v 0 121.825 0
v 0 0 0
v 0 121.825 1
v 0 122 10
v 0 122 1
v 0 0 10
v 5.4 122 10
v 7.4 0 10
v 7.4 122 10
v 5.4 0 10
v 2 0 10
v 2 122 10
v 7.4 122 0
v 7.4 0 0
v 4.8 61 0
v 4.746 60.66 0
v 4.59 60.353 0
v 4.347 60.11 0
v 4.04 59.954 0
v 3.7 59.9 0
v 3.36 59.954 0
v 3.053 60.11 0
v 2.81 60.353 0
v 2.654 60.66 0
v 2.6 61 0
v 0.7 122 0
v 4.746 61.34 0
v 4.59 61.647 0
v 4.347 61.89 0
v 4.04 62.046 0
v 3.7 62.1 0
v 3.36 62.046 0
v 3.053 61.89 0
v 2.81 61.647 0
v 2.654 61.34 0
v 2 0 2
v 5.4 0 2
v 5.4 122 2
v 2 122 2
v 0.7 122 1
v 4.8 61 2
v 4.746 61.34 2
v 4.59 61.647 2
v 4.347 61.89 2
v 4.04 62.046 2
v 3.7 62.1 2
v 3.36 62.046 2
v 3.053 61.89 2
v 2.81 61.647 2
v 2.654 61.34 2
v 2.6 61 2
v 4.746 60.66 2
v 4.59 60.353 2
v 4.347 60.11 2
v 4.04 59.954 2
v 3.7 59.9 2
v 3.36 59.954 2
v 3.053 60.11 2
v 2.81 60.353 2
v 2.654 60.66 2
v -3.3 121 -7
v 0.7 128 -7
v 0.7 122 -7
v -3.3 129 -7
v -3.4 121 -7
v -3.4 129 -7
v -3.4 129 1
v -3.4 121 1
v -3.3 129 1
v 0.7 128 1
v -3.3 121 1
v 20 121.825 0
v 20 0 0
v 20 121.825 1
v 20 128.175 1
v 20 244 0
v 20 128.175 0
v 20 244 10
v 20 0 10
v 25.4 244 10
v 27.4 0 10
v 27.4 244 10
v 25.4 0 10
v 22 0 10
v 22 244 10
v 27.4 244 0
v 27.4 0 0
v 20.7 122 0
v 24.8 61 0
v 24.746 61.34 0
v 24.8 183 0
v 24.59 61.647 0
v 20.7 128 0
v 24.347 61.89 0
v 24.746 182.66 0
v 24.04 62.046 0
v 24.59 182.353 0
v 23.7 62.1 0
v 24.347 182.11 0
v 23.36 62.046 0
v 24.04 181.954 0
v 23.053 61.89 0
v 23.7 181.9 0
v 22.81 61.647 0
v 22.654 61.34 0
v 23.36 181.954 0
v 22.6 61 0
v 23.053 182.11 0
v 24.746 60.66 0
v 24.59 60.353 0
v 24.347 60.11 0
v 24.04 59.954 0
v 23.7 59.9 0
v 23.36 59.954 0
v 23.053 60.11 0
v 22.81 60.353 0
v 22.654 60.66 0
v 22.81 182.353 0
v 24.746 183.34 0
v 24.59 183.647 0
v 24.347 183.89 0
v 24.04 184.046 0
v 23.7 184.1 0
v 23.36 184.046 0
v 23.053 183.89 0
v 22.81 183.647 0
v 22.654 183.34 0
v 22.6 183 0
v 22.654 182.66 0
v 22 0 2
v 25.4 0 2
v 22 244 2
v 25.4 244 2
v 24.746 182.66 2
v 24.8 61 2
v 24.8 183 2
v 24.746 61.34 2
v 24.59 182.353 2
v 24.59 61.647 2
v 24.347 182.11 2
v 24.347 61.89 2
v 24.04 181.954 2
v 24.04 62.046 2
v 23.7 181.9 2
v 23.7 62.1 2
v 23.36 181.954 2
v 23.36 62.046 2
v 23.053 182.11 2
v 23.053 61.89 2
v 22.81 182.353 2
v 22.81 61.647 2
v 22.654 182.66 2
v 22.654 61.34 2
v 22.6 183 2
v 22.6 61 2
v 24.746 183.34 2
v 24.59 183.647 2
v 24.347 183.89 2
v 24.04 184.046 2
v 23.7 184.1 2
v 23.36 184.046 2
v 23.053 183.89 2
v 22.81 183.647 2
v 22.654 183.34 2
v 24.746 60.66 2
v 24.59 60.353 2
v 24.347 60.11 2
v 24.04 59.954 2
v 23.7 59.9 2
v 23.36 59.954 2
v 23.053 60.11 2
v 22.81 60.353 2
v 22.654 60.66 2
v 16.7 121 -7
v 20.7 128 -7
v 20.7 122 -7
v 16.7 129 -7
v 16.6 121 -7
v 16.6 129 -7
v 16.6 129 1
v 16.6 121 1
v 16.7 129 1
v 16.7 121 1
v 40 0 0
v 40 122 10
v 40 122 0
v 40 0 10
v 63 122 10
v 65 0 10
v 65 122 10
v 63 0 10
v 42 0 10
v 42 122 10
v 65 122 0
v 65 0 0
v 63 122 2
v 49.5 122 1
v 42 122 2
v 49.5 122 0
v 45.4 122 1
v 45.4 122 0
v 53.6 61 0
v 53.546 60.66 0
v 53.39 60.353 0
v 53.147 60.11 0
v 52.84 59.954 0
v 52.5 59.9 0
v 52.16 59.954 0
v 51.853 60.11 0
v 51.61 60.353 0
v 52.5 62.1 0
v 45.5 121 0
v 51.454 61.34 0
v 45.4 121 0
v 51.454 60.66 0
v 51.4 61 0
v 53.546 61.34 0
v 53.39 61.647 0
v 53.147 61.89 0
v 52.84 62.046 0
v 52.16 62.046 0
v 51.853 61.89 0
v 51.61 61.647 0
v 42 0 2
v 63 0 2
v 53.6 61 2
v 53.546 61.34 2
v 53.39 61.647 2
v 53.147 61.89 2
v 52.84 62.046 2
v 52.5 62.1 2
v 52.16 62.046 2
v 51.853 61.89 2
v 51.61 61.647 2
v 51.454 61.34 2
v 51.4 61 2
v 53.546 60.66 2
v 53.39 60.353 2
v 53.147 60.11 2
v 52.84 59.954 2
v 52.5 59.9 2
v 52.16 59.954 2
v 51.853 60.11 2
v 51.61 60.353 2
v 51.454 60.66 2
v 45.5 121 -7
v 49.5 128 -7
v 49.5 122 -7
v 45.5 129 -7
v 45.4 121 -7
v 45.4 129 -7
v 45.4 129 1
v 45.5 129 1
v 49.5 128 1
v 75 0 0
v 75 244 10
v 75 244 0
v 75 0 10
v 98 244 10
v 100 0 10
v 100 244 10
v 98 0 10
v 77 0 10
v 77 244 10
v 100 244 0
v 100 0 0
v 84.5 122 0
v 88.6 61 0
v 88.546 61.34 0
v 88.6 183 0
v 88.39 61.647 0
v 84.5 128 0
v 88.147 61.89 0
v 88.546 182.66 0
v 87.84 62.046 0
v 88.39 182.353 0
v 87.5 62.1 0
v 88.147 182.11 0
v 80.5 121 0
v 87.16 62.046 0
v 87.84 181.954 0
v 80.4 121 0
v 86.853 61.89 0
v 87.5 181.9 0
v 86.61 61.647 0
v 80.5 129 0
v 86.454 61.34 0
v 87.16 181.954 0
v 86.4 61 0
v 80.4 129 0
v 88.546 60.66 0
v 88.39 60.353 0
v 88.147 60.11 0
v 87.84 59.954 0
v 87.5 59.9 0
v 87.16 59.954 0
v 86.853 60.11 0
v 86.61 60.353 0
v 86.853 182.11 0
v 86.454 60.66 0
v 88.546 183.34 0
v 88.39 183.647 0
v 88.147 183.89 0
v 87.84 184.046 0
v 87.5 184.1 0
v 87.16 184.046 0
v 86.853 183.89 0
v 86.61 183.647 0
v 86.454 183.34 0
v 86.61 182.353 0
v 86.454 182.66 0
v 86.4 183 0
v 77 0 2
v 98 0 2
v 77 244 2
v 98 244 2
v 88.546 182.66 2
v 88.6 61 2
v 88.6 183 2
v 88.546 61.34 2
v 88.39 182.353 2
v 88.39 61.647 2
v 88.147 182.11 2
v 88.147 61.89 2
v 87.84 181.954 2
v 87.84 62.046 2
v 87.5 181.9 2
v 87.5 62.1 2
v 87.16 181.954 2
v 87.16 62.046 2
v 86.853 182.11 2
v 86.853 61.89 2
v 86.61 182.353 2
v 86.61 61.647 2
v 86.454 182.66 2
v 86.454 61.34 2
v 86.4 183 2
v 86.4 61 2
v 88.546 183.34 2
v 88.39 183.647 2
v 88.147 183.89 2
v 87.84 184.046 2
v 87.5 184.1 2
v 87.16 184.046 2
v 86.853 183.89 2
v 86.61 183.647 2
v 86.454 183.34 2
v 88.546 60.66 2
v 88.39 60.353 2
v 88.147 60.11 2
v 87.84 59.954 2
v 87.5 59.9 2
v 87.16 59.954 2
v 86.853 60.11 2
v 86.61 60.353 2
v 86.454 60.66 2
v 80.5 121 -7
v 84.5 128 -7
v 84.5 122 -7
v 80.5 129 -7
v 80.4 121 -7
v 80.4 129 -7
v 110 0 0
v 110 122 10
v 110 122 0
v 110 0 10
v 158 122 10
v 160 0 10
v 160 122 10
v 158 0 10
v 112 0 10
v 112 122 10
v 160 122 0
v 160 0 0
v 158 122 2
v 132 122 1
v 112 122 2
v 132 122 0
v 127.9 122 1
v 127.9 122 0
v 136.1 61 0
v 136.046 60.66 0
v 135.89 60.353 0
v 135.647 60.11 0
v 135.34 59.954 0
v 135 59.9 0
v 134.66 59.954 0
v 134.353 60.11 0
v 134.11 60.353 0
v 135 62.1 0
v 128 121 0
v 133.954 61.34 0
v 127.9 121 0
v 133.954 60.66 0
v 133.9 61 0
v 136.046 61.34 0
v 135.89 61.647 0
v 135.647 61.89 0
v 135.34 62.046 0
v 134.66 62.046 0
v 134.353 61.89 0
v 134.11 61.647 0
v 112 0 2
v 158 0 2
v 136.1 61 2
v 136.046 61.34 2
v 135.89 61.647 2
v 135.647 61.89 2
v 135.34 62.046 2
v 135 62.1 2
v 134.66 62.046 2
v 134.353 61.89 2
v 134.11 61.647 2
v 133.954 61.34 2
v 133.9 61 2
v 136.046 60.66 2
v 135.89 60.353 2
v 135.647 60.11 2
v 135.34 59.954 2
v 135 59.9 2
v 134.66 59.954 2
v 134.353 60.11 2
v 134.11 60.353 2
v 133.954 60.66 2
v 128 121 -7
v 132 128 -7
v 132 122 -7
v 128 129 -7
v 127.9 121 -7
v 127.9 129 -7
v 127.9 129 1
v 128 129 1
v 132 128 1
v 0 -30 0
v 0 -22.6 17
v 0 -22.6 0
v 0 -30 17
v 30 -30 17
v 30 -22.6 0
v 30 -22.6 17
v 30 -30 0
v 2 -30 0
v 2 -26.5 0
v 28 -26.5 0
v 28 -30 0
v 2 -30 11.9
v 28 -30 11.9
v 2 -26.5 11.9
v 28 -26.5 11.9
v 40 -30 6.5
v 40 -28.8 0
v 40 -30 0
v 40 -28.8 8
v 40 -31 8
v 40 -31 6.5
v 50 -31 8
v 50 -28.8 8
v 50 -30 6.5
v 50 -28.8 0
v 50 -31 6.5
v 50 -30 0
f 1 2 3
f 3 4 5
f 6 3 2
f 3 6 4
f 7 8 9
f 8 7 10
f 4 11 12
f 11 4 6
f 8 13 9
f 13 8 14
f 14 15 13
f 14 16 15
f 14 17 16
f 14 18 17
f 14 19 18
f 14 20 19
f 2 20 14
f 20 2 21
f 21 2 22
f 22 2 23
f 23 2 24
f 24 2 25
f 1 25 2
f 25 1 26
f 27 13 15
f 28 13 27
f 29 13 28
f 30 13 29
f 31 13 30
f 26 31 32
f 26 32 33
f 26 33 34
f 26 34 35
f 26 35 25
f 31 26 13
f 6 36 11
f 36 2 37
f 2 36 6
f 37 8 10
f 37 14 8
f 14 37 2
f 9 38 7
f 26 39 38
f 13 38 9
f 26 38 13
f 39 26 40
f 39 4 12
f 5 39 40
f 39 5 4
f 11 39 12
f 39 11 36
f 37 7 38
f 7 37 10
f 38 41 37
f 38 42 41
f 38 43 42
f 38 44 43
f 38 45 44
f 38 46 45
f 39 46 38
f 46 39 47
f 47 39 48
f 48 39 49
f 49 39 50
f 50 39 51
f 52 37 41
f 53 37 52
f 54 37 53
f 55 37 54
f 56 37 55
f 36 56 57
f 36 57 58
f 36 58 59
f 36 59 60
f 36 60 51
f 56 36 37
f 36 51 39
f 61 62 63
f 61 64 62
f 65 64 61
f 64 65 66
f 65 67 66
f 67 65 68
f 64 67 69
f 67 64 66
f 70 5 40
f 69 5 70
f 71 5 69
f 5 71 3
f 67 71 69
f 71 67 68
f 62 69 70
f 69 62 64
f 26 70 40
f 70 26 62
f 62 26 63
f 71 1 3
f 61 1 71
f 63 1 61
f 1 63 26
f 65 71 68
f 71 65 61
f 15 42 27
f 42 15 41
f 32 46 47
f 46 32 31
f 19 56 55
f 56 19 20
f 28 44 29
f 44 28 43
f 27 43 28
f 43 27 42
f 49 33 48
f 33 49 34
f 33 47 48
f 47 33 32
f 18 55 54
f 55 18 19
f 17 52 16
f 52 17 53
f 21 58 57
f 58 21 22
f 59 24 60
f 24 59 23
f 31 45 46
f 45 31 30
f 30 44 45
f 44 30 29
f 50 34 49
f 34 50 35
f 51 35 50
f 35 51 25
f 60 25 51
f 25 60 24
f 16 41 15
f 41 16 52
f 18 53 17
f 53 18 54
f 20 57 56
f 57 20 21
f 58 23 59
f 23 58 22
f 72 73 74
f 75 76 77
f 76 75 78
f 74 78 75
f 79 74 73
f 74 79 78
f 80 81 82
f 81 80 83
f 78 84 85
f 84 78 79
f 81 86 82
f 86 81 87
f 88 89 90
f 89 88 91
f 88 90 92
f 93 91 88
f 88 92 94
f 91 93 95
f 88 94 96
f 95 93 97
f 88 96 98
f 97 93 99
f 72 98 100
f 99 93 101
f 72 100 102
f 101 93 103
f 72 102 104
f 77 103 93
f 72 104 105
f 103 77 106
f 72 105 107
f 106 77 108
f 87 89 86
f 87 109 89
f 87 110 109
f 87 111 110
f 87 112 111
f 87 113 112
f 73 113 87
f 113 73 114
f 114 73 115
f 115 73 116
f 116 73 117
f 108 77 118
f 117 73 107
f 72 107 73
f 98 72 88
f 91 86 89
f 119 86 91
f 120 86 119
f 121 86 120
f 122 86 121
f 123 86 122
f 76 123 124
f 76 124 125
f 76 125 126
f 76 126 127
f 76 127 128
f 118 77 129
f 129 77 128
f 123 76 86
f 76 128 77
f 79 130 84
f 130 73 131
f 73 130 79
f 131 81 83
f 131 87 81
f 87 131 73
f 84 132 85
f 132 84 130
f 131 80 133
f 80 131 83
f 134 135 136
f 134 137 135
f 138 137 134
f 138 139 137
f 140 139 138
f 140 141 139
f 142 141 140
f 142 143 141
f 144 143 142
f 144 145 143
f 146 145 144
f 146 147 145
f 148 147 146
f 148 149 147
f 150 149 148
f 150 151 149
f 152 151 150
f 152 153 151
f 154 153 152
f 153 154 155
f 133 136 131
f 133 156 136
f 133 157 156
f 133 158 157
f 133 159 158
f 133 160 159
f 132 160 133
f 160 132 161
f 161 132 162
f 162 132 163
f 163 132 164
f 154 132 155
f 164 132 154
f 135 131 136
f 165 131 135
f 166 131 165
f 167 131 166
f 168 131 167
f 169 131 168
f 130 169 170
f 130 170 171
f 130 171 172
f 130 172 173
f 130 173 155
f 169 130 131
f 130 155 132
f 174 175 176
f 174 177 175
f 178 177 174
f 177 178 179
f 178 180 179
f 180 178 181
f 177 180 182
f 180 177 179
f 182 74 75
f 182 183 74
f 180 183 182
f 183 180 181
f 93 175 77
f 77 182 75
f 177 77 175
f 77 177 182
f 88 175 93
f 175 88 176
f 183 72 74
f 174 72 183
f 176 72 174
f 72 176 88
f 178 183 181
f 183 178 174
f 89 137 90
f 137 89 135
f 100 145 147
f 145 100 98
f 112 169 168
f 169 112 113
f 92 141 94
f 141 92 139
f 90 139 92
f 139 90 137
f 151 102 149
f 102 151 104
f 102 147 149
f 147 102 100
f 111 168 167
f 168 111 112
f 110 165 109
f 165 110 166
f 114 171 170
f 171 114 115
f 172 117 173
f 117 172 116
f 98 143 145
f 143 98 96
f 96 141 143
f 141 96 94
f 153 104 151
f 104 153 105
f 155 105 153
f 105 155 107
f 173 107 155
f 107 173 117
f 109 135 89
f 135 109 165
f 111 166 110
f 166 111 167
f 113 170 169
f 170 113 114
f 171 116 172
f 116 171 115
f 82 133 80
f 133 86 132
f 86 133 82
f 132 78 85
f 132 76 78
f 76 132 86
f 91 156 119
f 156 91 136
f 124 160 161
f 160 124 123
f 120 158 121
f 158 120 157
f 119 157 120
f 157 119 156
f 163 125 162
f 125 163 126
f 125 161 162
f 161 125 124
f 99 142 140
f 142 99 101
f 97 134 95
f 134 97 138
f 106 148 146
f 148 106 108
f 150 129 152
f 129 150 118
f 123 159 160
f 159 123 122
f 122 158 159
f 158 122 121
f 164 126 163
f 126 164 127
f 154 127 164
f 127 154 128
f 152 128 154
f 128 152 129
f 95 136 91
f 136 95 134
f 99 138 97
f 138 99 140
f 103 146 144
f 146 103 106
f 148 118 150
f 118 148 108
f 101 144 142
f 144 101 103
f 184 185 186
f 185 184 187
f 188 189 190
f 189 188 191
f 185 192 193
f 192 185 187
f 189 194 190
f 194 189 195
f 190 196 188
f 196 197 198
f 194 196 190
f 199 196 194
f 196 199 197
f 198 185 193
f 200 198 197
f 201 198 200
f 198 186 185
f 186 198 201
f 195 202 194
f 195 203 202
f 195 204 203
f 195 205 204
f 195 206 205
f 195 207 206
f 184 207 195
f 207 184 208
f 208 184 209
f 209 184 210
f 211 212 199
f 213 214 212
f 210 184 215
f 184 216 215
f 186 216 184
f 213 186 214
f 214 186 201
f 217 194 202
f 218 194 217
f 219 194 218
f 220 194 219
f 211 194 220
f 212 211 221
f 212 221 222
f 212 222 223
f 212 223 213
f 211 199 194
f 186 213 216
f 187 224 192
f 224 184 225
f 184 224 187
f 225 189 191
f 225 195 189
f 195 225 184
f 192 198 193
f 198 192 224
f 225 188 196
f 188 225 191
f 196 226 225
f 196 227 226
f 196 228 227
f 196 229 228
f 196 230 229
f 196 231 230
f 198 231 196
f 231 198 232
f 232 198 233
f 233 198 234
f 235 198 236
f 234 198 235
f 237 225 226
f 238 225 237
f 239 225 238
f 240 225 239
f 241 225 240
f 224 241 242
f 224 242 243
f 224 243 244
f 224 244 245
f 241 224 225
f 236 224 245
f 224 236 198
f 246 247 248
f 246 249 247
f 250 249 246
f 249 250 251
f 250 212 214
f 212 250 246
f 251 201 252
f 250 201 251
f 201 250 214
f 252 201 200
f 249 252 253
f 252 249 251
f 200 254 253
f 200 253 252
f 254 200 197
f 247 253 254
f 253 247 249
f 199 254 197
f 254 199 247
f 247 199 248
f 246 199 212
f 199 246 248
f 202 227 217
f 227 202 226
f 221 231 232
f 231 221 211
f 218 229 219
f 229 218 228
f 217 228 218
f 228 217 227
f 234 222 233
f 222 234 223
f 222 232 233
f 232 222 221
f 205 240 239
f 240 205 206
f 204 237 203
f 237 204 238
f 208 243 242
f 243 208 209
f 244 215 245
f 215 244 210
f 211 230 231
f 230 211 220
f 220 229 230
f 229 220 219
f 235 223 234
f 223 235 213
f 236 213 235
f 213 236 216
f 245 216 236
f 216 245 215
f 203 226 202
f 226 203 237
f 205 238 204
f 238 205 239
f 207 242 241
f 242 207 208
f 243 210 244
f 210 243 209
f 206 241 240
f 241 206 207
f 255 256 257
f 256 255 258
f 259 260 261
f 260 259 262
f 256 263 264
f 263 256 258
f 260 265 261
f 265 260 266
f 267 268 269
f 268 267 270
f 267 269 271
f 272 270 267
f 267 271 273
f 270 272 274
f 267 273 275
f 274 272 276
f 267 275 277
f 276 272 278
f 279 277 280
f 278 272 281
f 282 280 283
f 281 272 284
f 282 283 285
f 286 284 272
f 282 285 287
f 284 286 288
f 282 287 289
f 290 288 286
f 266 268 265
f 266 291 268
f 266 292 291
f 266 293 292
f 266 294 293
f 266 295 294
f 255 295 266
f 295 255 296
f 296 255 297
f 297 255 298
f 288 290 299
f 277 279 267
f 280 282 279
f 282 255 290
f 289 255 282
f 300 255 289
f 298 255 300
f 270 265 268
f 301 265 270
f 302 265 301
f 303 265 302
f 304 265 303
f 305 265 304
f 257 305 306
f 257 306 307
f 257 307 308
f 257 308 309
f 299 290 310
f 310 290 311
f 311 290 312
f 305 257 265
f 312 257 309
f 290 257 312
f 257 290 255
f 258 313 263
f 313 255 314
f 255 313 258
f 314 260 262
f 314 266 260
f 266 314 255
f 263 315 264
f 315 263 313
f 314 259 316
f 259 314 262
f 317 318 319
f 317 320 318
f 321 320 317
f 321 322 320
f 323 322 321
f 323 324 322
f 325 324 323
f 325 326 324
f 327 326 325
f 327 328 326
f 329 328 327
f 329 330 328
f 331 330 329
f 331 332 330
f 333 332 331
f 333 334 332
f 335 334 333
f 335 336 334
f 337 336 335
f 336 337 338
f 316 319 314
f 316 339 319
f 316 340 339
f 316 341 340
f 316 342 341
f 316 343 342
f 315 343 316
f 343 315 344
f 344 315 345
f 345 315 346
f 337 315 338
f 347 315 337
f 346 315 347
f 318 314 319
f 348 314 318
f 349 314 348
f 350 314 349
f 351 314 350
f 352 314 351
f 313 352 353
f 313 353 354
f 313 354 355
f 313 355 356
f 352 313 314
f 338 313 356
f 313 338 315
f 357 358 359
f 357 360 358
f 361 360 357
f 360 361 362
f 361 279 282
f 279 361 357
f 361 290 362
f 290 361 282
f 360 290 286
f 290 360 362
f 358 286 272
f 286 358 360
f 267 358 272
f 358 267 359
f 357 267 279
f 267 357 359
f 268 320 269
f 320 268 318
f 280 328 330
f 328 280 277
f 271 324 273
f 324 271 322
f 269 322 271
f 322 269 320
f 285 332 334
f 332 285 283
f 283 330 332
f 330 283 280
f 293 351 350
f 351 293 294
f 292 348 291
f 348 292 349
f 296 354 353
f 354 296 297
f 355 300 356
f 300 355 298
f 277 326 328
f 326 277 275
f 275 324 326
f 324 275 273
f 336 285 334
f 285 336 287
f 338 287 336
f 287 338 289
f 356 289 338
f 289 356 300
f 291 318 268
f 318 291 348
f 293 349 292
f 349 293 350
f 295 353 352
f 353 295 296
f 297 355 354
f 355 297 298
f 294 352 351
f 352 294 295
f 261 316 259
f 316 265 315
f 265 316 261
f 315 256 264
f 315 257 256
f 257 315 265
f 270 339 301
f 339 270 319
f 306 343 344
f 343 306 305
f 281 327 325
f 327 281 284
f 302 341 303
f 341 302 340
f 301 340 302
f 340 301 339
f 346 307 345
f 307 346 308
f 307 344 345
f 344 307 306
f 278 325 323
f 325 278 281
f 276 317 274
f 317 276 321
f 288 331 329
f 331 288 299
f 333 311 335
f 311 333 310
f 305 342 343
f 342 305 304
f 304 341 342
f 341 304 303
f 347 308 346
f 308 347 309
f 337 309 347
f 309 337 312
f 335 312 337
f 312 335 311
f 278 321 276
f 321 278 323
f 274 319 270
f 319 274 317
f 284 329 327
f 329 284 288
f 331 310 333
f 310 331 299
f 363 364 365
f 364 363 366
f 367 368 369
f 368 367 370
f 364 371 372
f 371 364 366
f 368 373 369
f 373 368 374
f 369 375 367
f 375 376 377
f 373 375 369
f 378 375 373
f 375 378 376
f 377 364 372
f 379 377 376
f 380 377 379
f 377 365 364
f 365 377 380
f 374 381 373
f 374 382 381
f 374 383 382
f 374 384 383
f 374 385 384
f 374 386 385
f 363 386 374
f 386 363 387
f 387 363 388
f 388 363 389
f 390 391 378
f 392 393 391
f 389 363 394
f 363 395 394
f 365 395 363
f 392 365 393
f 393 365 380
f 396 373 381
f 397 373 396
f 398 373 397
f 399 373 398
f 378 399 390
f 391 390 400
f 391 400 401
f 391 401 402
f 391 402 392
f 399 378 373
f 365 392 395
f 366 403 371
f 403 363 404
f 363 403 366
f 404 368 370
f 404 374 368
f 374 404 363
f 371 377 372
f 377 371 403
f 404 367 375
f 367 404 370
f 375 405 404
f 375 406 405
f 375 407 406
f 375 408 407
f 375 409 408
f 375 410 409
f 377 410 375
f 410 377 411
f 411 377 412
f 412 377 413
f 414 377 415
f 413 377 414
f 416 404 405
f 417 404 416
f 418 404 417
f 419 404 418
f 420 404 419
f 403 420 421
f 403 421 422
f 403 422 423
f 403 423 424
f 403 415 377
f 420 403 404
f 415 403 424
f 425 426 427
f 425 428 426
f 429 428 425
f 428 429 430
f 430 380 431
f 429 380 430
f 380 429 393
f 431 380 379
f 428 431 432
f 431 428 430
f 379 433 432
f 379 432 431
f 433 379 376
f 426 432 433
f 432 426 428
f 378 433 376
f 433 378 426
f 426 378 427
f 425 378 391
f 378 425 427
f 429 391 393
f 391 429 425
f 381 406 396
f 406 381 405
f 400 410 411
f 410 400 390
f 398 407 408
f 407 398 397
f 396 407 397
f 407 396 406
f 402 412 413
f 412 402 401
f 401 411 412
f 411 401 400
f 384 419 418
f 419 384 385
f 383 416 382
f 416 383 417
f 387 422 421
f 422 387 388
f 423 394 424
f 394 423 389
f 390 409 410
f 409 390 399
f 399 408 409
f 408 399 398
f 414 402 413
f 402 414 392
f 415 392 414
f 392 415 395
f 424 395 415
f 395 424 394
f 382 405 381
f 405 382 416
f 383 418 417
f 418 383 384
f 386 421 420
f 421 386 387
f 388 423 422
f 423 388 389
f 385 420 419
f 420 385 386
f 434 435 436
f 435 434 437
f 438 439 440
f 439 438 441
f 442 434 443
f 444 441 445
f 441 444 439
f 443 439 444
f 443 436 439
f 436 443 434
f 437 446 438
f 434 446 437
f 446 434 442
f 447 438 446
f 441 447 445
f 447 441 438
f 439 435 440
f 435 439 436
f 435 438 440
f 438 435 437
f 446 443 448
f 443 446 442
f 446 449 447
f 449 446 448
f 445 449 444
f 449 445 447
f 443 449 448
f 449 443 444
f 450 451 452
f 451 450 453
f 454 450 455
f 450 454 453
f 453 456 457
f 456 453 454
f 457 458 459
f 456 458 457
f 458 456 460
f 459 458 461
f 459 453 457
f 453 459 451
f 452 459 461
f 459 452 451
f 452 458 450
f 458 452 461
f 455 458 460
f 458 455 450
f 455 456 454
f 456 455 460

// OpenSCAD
// ==========================================
// TRILHO DESLIZANTE PARA FILTROS REMOVÍVEIS
// Impressão 3D - PLA/PETG (Ender 3 - 200×200mm)
// ==========================================
//
// CONCEITO: Trilhos em U colados/parafusados na face interna
// das laterais. Cada filtro (divisória MDF) desliza de cima
// para baixo nos trilhos. Remove tampa snap-fit → puxa filtro.
//
// Cada trilho = 2 METADES com encaixe dovetail no meio
//   Metade A: 122mm (com dovetail macho)
//   Metade B: 122mm (com dovetail fêmea)
//   Montado: 244mm (largura interna da caixa)
//
// 6 PARES de trilhos (esq + dir por pos):
//   1. Manta G3     (X=50mm,  esp=10mm)
//   2. GM Cabine     (X=75mm,  esp=20mm)
//   3. Wega Motor    (X=125mm,  esp=45mm)
//   4. HEPA          (X=155mm, esp=25mm)
//   5. Tela Carvão 1 (X=190mm, esp=3mm)
//   6. Tela Carvão 2 (X=230mm, esp=3mm)
//
// PEÇAS POR FILTRO:
//   2× metade A (esq+dir) + 2× metade B (esq+dir) = 4 peças
//   Total: 6×4 = 24 peças (12 impressões se imprimir 2 por vez)
//
// Alternativamente: os trilhos finos (tela carvão 3mm) e os
// padrão (10-25mm) podem compartilhar o mesmo perfil com canal
// ajustável. Filtros mais grossos (Wega 45mm) = trilho largo.
//
// ORIENTAÇÃO DE IMPRESSÃO:
//   Deitado (perfil U para cima) - sem suportes necessários
//   Layer 0.2mm | Infill 40% | Walls 3
//
// FIXAÇÃO NAS LATERAIS:
//   - Cola CA (cianoacrilato) + parafuso Allen M2×5mm (fixação obrigatória)
//   - 3 furos Ø2.2mm por metade no fundo do trilho (furos Ø2.5mm no MDF)
//
// ENDER 3: 200×200mm bed
//   Metade 122mm → cabe facilmente horizontal
//   Largura máx do trilho: ~15mm → 12 metades em 1 impressão!
//
// ==========================================

// === PARÂMETROS GLOBAIS ===

// MDF
mdf = 3;              // Espessura MDF das divisórias (mm)
folga = 0.4;          // Folga do canal (MDF 3mm + 0.4 = canal 3.4mm)
caixa_int = 244;      // Largura interna da caixa (entre laterais)

// Trilho
trilho_comp = 122;    // Comprimento de cada metade (244/2)
trilho_alt = 240;     // Altura do trilho (deixa 5mm em cima para puxar)
trilho_parede = 2;    // Espessura da parede do U
trilho_base = 2;      // Espessura da base (cola no MDF lateral)
trilho_aba = 8;       // Altura da aba do U (guia o MDF)

// Dovetail (encaixe das 2 metades)
dove_larg = 6;        // Largura na base do dovetail
dove_topo = 8;        // Largura no topo (trapézio)
dove_alt = 8;         // Comprimento do encaixe (na direção do trilho)
dove_prof = 4;        // Profundidade (metade da espessura)

// Furos de fixação
furo_diam = 2.2;      // Diâmetro para parafuso M2
furo_dist = 30;       // Distância entre furos (do centro)
n_furos = 1;          // Furos por metade (centro)

// Puxador (aba no topo do filtro para puxar)
puxador_larg = 30;    // Largura do puxador
puxador_alt = 15;     // Quanto sobe acima do filtro
puxador_esp = 3;      // Espessura

// Canal para cada tipo de filtro (espessura)
// Canal = espessura do filtro + folga
// Os trilhos formam o canal: 2 abas paralelas com espaço entre elas

// === MÓDULOS ===

// Perfil em U (seção transversal do trilho)
// canal_w = largura do canal (esp. filtro + folga)
module perfil_u(canal_w, comprimento) {
    // Base (cola no MDF)
    largura_total = canal_w + 2 * trilho_parede;
    
    translate([0, 0, 0])
    difference() {
        // Bloco sólido
        cube([largura_total, comprimento, trilho_base + trilho_aba]);
        
        // Canal interno (onde o filtro desliza)
        translate([trilho_parede, -0.1, trilho_base])
            cube([canal_w, comprimento + 0.2, trilho_aba + 0.1]);
    }
}

// Dovetail macho (trapézio que sai)
module dovetail_macho() {
    hull() {
        translate([0, 0, 0])
            cube([dove_larg, dove_alt, 0.1]);
        translate([-(dove_topo - dove_larg)/2, 0, dove_prof])
            cube([dove_topo, dove_alt, 0.1]);
    }
}

// Dovetail fêmea (encaixe negativo)
module dovetail_femea() {
    hull() {
        translate([-0.1, -0.1, -0.1])
            cube([dove_larg + 0.2, dove_alt + 0.2, 0.1]);
        translate([-(dove_topo - dove_larg)/2 - 0.1, -0.1, dove_prof + 0.1])
            cube([dove_topo + 0.2, dove_alt + 0.2, 0.1]);
    }
}

// Metade A (com dovetail macho na ponta)
module trilho_metade_a(canal_w) {
    largura_total = canal_w + 2 * trilho_parede;
    
    difference() {
        union() {
            // Perfil U
            perfil_u(canal_w, trilho_comp);
            
            // Dovetail macho (na ponta Y=trilho_comp)
            translate([largura_total/2 - dove_larg/2, trilho_comp, (trilho_base + trilho_aba)/2 - dove_alt/2])
            rotate([0, -90, 0])
            rotate([0, 0, 90])
                dovetail_macho();
        }
        
        // Furos de fixação (no fundo/base)
        for (i = [1:n_furos]) {
            translate([largura_total/2, trilho_comp * i/(n_furos+1), -0.1])
                cylinder(h = trilho_base + 0.2, d = furo_diam, $fn = 20);
        }
    }
}

// Metade B (com dovetail fêmea na ponta)
module trilho_metade_b(canal_w) {
    largura_total = canal_w + 2 * trilho_parede;
    
    difference() {
        // Perfil U
        perfil_u(canal_w, trilho_comp);
        
        // Dovetail fêmea (na ponta Y=0, receptor)
        translate([largura_total/2 - dove_larg/2, -dove_alt, (trilho_base + trilho_aba)/2 - dove_alt/2])
        rotate([0, -90, 0])
        rotate([0, 0, 90])
            dovetail_femea();
        
        // Furos de fixação
        for (i = [1:n_furos]) {
            translate([largura_total/2, trilho_comp * i/(n_furos+1), -0.1])
                cylinder(h = trilho_base + 0.2, d = furo_diam, $fn = 20);
        }
    }
}

// Par de trilhos montado (244mm) - para visualização
module trilho_completo(canal_w) {
    color("DodgerBlue")
        trilho_metade_a(canal_w);
    color("RoyalBlue")
    translate([0, trilho_comp, 0])
        trilho_metade_b(canal_w);
}

// Puxador (impresso junto ou separado)
module puxador() {
    difference() {
        union() {
            // Corpo que abraça a borda do filtro
            cube([puxador_larg, mdf + folga + 2*trilho_parede, puxador_alt]);
            
            // Reforço/rampa
            translate([0, 0, puxador_alt])
                cube([puxador_larg, mdf + folga + 2*trilho_parede, 2]);
        }
        
        // Canal para o MDF do filtro
        translate([trilho_parede, -0.1, -0.1])
            cube([puxador_larg - 2*trilho_parede, mdf + folga + 0.2, puxador_alt - 3]);
    }
}

// Trava de retenção (evita filtro cair, clip no fundo do trilho)
module trava() {
    // Pequena lingueta flexível no fim do trilho
    largura = 10;
    altura = 8;
    espessura = 1.2;
    gancho = 1.0;
    
    // Haste flexível
    cube([largura, espessura, altura]);
    
    // Gancho na ponta
    translate([0, -gancho, altura - 1.5])
        cube([largura, gancho + espessura, 1.5]);
}

// === CONFIGURAÇÕES POR FILTRO ===
// [nome, posição_x, espessura_filtro, canal_necessario]

// Canais calculados:
// - MDF 3mm: canal = 3 + 0.4 = 3.4mm
// - Manta G3 (10mm): acolchoada, canal = 12mm (filtro comprime)
// - GM Cabine (20mm): canal = 21mm
// - Wega Motor (45mm): canal = 46mm
// - HEPA (25mm): canal = 26mm

canais = [
    [50,   12],   // Manta G3: esp efetiva ~10mm c/ MDF holder
    [75,   21],   // GM Cabine Bosch
    [125,  46],   // Wega Motor (o mais largo!)
    [155,  26],   // HEPA
    [190, 3.4],   // Tela Carvão 1 (MDF 3mm)
    [230, 3.4],   // Tela Carvão 2 (MDF 3mm)
];

// ============================
// RENDER / VISUALIZAÇÃO
// ============================

// --- Opção 1: Metade A individual (para impressão) ---
// Descomente para gerar STL de cada tipo:

// Trilho fino (Tela Carvão, MDF 3mm)
trilho_metade_a(3.4);

// --- Opção 2: Par montado (visualização) ---
translate([20, 0, 0])
    trilho_completo(3.4);

// Trilho médio (GM Cabine 20mm)
translate([40, 0, 0])
    trilho_metade_a(21);

translate([75, 0, 0])
    trilho_completo(21);

// Trilho largo (Wega 45mm)
translate([110, 0, 0])
    trilho_metade_a(46);

// --- Opção 3: Puxador ---
translate([0, -30, 0])
    color("Orange")
        puxador();

// --- Opção 4: Trava ---
translate([40, -30, 0])
    color("Red")
        trava();

// ============================
// LAYOUT PARA IMPRESSÃO (Ender 3)
// Exemplo: 4 metades finas na cama
// ============================
/*
// Layout para cama 200×200mm
for (i = [0:3]) {
    translate([i * 12, 0, 0])
        trilho_metade_a(3.4);
}
for (i = [0:3]) {
    translate([i * 12, 130, 0])
        trilho_metade_b(3.4);
}
// 8 peças em 1 impressão! (~58×122mm cada → cabem 12)
*/

// ============================
// INFORMAÇÕES DE IMPRESSÃO
// ============================
// - Material: PLA ou PETG
// - Layer: 0.2mm (0.28 para speed)
// - Infill: 40% (grid ou gyroid)
// - Walls: 3 perímetros
// - Suporte: NÃO necessário (perfil U imprime deitado)
// - Orientação: abas do U para cima
// - Tempo estimado por par: ~40min (fino) / ~1h20 (médio) / ~2h (largo)
//
// QUANTIDADE TOTAL DE PEÇAS:
// | Filtro       | Canal  | Peças |
// |------------- |--------|-------|
// | Manta G3     | 12mm   |  4    |
// | GM Cabine    | 21mm   |  4    |
// | Wega Motor   | 46mm   |  4    |
// | HEPA         | 26mm   |  4    |
// | Tela Carv 1  | 3.4mm  |  4    |
// | Tela Carv 2  | 3.4mm  |  4    |
// | TOTAL        |        | 24    |
// | + 6 puxadores + 6 travas = 36 peças total
//
// IMPRESSÕES OTIMIZADAS (agrupando por tamanho):
// Batch 1: 8× metades finas (3.4mm) → 1 print ~50min
// Batch 2: 4× metades Manta G3 (12mm) → 1 print ~1h
// Batch 3: 4× metades GM (21mm) → 1 print ~1h20
// Batch 4: 4× metades HEPA (26mm) → 1 print ~1h30
// Batch 5: 4× metades Wega (46mm) → 1 print ~2h
// Batch 6: 6× puxadores + 6× travas → 1 print ~45min
// Total: ~6 impressões, ~7h30 de tempo de impressão
